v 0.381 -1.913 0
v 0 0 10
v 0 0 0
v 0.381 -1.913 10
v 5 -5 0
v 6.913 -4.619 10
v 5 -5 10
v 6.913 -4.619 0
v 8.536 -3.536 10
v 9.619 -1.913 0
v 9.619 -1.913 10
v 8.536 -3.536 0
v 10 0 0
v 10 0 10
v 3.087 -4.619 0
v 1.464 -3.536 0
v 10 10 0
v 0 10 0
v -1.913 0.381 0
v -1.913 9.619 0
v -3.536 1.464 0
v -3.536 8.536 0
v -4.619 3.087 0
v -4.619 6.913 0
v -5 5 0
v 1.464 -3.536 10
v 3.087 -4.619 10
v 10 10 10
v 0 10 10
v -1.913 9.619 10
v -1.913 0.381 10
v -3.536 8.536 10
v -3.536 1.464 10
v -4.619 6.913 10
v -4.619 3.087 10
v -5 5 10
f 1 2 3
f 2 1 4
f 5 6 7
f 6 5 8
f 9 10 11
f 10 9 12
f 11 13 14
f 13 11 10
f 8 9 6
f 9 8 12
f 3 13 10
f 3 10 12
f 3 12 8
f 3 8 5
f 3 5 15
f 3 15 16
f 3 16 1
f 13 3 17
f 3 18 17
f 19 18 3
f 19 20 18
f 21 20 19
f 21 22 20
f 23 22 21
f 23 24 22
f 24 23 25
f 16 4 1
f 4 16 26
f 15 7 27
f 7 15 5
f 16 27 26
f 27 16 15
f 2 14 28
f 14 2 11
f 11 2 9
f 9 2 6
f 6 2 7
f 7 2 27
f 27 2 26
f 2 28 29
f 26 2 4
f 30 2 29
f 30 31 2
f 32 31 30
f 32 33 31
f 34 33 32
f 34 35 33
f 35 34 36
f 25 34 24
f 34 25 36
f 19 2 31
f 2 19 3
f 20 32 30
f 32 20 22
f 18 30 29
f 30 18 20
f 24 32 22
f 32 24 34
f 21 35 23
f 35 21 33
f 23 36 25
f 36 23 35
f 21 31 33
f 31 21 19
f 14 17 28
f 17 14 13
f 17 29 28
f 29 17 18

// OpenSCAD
union(){
    cube(10);
    translate([5,0,0])
    union(){
        cylinder(h=10,d=10);
        translate([-5,5,0]) cylinder(h=10,d=10);
    }
}
